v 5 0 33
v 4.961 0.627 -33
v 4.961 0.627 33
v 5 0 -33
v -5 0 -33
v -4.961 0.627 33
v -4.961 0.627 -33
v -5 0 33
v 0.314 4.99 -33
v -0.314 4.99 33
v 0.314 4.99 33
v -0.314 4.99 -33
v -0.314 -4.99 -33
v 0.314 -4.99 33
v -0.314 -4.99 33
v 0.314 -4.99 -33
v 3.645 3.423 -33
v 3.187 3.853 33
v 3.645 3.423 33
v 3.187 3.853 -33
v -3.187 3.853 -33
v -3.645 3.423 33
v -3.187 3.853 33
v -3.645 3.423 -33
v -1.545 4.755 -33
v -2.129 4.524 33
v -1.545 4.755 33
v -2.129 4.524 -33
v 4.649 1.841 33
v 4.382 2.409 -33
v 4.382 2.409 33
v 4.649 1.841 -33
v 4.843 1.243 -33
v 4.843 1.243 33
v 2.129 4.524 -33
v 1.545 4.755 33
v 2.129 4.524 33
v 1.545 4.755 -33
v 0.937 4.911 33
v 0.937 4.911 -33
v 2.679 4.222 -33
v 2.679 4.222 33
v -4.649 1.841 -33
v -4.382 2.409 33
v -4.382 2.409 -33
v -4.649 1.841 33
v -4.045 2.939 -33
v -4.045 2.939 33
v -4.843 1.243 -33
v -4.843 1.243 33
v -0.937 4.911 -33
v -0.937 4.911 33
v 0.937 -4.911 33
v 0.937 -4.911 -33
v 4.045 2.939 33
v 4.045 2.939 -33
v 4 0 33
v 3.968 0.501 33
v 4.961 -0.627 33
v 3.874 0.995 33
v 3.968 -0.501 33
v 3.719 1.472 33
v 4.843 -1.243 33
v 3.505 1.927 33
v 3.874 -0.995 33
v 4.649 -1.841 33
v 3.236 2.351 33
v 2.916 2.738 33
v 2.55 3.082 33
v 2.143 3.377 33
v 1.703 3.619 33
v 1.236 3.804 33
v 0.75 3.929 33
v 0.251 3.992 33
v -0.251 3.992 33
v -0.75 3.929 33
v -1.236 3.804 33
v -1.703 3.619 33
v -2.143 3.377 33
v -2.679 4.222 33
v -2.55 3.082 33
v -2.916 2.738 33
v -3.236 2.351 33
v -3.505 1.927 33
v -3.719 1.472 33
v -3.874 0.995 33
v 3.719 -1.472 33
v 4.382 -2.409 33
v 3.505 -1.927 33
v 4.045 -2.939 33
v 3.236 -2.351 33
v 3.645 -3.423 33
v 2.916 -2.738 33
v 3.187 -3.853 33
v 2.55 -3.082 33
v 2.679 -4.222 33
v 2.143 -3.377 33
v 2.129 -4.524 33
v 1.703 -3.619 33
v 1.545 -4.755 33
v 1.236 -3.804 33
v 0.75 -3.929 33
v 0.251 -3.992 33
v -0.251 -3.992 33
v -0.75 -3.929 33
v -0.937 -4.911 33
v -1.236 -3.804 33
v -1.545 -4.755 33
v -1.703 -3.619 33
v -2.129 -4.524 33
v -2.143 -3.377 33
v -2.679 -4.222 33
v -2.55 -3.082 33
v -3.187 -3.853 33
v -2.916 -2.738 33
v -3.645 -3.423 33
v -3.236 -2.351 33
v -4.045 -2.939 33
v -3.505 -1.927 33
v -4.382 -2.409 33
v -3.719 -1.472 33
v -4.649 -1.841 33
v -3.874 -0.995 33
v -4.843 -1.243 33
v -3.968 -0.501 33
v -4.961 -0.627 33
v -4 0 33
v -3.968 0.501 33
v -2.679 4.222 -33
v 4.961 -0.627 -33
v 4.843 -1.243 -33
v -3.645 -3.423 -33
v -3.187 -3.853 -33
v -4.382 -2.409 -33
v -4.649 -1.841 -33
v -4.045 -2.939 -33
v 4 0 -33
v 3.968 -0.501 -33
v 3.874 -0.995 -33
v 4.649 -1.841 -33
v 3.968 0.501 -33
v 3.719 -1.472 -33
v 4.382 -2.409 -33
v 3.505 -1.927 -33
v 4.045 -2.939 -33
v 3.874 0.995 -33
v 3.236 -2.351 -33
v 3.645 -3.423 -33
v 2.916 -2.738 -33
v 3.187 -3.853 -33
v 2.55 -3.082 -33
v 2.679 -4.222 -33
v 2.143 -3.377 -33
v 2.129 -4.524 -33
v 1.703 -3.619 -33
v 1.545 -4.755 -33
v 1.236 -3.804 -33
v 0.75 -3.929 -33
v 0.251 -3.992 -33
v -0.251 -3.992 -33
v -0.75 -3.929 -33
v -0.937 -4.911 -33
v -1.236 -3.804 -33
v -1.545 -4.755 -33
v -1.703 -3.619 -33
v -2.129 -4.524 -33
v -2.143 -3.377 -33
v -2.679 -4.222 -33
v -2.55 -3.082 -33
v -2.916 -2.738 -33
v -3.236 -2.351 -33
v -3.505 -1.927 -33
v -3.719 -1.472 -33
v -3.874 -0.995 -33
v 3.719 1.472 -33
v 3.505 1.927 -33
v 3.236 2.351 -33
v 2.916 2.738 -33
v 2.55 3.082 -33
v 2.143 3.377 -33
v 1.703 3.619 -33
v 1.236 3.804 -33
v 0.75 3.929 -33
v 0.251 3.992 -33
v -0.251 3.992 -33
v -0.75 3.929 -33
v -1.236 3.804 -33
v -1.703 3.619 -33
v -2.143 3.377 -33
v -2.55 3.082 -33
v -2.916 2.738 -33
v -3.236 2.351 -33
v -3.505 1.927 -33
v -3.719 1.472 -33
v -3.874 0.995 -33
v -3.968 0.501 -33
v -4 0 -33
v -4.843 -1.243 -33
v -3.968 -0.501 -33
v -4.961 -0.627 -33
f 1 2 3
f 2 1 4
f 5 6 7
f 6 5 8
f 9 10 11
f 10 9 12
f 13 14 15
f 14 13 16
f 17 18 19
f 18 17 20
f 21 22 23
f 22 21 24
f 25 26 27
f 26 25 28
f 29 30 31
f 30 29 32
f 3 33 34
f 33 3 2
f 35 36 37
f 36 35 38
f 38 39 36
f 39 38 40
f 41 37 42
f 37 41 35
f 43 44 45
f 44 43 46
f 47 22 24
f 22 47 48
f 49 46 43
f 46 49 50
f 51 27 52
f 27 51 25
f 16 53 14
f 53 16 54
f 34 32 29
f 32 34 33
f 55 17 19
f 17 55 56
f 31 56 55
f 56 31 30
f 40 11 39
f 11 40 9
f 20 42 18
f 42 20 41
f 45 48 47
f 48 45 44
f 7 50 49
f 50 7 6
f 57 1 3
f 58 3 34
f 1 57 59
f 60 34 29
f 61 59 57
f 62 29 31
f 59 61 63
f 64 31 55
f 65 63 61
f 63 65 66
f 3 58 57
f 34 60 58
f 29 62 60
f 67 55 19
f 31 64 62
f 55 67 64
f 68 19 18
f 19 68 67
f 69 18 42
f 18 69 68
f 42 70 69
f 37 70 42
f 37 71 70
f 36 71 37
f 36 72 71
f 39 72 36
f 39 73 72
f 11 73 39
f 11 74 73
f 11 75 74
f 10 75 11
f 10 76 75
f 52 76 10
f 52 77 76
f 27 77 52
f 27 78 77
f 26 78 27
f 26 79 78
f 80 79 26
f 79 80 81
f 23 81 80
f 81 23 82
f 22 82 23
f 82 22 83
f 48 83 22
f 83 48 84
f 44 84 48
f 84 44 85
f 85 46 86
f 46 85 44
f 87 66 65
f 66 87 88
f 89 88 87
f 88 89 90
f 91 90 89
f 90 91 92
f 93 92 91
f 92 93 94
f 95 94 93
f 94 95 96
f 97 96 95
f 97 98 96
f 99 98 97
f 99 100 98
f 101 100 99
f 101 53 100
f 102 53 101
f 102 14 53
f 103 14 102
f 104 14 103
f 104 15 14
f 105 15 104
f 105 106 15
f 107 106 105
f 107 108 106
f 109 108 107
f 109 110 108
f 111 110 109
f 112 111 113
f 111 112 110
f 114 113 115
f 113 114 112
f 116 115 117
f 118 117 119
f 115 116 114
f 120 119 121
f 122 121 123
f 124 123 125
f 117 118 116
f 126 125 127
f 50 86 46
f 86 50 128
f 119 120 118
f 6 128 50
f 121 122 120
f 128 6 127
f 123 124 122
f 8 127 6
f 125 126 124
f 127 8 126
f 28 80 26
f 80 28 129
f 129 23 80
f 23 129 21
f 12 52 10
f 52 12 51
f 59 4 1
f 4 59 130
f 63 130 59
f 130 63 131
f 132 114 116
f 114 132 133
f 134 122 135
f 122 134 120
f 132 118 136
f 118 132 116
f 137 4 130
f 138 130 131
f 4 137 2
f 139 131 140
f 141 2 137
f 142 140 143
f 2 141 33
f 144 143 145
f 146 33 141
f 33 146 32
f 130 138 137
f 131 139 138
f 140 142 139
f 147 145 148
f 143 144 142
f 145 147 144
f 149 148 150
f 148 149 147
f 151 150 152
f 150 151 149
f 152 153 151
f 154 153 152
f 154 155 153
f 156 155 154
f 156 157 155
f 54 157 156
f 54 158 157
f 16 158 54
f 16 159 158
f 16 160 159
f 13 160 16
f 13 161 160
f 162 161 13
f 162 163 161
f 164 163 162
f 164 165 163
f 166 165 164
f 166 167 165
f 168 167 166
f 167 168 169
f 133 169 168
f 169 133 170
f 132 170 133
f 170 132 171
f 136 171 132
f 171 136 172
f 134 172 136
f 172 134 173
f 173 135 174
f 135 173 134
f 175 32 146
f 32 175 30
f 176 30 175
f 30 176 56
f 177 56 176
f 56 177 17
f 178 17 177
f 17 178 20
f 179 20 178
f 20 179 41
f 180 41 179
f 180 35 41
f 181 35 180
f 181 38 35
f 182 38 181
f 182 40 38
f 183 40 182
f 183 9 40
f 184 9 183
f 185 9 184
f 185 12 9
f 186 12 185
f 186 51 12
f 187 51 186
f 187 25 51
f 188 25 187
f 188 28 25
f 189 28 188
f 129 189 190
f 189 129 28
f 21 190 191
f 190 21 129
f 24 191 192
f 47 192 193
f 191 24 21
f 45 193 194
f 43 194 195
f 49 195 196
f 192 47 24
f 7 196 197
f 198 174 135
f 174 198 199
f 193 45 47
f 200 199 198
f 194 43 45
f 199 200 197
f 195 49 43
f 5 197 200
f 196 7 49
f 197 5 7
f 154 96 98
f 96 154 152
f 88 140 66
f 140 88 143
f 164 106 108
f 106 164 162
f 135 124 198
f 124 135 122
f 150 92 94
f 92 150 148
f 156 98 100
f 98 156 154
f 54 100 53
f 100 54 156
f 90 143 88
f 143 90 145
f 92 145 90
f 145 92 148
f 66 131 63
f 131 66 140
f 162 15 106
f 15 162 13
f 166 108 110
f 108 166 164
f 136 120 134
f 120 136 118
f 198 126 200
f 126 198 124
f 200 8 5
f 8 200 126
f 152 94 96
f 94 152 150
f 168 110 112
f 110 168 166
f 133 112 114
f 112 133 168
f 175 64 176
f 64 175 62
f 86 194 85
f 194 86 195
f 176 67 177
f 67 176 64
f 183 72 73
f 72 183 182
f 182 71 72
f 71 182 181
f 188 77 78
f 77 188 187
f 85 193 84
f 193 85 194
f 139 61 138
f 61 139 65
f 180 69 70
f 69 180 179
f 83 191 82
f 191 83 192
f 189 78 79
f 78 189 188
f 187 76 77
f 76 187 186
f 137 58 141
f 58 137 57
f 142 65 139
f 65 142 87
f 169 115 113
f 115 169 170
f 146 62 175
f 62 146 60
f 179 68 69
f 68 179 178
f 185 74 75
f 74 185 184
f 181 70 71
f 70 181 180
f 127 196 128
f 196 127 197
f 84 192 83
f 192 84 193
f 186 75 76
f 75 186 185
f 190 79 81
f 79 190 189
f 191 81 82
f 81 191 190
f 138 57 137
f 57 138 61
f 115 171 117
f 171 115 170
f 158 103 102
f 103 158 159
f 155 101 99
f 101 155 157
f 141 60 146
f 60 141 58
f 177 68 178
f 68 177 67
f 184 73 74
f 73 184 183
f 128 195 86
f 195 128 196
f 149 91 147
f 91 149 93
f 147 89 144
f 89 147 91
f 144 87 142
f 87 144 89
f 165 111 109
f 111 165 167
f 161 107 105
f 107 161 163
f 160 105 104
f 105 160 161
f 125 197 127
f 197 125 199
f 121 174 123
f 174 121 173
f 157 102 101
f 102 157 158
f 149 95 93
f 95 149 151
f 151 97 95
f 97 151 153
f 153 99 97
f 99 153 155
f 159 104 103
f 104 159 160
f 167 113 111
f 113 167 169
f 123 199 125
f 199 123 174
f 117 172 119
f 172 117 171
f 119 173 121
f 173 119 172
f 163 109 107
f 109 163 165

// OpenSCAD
$fn = 50;


difference() {
	union() {
		translate(v = [0, 0, -33.0000000000]) {
			cylinder(h = 66, r = 5.0000000000);
		}
	}
	union() {
		translate(v = [0, 0, -100.0000000000]) {
			cylinder(h = 200, r = 4);
		}
	}
}
